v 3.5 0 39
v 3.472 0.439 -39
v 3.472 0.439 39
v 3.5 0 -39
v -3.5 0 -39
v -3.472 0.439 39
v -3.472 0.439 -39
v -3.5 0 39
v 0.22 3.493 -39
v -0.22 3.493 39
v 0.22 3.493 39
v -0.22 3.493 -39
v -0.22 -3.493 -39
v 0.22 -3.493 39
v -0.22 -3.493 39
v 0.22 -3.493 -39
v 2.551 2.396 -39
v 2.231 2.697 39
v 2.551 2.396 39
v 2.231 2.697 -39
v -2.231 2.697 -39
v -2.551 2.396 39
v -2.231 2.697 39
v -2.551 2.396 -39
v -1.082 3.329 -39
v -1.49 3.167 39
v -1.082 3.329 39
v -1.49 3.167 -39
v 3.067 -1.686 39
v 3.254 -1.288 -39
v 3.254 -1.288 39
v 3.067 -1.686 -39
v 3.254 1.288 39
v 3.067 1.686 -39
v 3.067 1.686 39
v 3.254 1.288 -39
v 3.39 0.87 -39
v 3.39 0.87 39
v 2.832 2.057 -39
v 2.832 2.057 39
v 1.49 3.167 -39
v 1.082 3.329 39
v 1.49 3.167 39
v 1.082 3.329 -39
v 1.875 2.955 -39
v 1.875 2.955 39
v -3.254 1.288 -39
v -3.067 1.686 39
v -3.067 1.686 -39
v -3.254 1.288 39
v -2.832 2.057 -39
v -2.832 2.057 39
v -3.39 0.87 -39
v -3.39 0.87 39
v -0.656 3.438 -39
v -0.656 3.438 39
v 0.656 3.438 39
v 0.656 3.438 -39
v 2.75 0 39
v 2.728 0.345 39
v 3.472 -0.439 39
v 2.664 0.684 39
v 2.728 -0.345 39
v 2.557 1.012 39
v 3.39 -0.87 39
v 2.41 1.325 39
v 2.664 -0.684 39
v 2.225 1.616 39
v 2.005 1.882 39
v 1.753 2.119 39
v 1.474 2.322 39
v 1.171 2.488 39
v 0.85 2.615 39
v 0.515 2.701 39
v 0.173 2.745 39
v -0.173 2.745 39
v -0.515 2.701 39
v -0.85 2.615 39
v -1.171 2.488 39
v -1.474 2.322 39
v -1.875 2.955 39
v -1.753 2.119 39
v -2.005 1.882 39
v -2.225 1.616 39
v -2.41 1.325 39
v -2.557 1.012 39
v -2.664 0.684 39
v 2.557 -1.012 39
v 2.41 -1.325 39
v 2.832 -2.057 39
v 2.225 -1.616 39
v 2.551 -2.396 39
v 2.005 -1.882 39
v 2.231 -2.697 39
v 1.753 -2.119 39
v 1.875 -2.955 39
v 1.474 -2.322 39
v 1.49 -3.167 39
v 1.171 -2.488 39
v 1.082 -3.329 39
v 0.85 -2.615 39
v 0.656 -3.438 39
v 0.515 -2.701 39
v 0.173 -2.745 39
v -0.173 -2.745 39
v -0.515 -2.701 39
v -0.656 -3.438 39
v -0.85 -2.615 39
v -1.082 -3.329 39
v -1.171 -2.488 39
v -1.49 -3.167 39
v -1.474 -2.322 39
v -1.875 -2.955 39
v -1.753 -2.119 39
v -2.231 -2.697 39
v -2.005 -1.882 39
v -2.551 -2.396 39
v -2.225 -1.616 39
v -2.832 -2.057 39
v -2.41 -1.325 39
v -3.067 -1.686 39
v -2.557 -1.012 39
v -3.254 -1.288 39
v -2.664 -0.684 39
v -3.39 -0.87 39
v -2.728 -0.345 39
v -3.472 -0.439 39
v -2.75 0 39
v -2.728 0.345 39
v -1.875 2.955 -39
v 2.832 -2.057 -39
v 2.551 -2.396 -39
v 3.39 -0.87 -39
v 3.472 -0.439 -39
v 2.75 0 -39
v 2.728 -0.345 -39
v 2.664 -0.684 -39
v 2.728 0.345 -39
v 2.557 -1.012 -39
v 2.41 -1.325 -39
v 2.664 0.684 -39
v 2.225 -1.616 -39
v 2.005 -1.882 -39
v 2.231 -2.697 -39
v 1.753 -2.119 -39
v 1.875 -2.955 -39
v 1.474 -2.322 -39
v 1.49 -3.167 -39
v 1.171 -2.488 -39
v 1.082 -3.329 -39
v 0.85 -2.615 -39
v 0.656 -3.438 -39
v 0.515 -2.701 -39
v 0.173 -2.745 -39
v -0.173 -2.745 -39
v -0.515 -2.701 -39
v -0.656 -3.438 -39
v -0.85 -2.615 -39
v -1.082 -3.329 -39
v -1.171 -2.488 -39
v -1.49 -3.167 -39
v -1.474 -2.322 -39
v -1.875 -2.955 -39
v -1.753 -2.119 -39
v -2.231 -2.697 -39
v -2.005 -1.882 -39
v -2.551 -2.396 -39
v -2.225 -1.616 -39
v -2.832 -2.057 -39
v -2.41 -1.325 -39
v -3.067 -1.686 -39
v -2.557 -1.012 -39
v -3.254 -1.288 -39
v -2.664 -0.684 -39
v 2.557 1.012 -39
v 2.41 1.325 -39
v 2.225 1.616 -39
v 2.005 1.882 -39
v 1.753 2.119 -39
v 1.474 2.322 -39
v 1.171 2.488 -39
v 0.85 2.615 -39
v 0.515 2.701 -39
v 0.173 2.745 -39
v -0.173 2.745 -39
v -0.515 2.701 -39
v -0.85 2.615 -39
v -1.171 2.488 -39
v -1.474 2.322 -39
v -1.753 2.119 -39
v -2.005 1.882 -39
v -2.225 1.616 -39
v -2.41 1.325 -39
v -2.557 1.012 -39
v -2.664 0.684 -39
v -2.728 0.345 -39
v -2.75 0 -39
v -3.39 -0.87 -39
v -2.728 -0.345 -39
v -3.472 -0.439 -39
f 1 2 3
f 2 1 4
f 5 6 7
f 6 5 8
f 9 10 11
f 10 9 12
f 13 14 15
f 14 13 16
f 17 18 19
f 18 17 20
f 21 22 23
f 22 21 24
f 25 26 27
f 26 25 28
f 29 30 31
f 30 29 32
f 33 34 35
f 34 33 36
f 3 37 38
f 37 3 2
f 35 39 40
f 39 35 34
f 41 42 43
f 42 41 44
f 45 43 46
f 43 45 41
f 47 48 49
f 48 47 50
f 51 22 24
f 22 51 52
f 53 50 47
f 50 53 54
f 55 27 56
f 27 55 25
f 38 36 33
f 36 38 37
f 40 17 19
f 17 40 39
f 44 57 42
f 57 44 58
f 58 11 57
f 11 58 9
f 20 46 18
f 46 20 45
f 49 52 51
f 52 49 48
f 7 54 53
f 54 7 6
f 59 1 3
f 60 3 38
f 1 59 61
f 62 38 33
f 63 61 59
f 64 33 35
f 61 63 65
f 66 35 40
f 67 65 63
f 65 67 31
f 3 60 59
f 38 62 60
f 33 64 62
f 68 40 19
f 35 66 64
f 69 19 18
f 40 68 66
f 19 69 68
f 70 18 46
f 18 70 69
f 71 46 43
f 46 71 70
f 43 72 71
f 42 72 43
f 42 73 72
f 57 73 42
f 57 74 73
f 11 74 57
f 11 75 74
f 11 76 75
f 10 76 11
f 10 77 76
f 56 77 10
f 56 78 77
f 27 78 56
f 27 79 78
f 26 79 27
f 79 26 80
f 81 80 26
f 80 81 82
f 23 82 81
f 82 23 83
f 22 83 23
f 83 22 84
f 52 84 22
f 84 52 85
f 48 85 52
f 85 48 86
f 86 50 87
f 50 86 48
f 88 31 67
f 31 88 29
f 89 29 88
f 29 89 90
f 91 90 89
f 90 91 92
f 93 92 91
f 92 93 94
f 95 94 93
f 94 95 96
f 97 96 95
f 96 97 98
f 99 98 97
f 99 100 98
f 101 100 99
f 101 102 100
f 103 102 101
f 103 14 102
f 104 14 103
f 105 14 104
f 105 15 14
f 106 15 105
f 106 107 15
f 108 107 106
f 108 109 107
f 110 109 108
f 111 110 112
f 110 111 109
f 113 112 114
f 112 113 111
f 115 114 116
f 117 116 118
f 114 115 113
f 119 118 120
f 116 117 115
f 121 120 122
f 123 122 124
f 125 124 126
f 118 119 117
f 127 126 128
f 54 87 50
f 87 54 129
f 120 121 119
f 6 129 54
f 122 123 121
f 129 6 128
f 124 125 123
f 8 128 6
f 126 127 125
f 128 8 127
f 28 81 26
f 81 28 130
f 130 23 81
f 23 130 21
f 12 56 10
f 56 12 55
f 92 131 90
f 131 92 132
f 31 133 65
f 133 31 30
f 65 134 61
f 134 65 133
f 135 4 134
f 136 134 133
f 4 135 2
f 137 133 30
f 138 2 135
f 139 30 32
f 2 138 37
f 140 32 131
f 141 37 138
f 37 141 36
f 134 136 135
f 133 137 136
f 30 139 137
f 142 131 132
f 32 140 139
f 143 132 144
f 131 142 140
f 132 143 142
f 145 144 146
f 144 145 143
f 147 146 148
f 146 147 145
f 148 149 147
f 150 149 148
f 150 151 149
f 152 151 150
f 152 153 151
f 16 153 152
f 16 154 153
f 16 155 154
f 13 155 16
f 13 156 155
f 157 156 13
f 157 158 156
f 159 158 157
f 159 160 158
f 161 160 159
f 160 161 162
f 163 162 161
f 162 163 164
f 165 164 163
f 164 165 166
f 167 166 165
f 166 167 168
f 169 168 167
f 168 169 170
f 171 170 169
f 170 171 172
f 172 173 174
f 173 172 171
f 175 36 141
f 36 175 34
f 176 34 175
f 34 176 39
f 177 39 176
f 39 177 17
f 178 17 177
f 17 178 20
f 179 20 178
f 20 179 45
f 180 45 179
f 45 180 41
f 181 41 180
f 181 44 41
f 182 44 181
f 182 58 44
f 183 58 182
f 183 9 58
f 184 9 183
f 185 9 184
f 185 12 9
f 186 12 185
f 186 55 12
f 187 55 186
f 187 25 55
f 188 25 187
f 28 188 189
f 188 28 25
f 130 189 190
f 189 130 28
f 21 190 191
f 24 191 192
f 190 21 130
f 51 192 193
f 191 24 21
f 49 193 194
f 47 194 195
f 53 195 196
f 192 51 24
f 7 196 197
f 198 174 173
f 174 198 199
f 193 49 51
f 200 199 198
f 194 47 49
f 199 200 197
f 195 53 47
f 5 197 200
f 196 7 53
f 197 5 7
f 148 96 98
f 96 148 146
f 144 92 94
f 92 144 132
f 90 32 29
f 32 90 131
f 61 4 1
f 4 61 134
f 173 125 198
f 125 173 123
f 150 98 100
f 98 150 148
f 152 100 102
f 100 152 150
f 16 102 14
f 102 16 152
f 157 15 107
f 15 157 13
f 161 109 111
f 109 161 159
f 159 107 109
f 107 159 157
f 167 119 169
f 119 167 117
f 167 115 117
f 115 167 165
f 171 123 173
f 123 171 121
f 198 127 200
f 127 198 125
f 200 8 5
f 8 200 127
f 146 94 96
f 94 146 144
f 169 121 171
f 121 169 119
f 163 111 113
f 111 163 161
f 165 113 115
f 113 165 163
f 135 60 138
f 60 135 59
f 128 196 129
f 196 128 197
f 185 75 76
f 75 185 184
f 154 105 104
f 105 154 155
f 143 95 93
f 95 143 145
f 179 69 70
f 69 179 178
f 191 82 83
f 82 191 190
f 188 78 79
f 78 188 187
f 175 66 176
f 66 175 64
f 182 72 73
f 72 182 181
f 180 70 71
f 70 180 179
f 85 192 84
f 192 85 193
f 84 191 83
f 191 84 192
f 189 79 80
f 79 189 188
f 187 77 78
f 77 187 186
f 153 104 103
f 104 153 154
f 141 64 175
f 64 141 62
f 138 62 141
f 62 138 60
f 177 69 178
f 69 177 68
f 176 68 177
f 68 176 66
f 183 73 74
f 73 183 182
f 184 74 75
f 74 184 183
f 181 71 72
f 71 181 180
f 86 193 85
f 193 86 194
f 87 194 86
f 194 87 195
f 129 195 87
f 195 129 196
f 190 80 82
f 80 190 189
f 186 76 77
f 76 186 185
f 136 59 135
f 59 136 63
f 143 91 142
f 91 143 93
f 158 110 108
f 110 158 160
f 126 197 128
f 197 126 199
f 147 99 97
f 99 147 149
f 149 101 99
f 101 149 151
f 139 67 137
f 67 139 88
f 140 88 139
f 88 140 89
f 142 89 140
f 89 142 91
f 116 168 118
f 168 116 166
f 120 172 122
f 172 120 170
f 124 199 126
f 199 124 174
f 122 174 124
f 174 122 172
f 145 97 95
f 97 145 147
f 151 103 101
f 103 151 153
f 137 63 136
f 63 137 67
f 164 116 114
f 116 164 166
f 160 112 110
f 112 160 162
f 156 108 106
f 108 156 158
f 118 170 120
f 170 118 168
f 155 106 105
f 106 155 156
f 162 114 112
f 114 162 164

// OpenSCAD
$fn = 50;


difference() {
	union() {
		translate(v = [0, 0, -39.0000000000]) {
			cylinder(h = 78, r = 3.5000000000);
		}
	}
	union() {
		translate(v = [0, 0, -100.0000000000]) {
			cylinder(h = 200, r = 2.7500000000);
		}
	}
}
